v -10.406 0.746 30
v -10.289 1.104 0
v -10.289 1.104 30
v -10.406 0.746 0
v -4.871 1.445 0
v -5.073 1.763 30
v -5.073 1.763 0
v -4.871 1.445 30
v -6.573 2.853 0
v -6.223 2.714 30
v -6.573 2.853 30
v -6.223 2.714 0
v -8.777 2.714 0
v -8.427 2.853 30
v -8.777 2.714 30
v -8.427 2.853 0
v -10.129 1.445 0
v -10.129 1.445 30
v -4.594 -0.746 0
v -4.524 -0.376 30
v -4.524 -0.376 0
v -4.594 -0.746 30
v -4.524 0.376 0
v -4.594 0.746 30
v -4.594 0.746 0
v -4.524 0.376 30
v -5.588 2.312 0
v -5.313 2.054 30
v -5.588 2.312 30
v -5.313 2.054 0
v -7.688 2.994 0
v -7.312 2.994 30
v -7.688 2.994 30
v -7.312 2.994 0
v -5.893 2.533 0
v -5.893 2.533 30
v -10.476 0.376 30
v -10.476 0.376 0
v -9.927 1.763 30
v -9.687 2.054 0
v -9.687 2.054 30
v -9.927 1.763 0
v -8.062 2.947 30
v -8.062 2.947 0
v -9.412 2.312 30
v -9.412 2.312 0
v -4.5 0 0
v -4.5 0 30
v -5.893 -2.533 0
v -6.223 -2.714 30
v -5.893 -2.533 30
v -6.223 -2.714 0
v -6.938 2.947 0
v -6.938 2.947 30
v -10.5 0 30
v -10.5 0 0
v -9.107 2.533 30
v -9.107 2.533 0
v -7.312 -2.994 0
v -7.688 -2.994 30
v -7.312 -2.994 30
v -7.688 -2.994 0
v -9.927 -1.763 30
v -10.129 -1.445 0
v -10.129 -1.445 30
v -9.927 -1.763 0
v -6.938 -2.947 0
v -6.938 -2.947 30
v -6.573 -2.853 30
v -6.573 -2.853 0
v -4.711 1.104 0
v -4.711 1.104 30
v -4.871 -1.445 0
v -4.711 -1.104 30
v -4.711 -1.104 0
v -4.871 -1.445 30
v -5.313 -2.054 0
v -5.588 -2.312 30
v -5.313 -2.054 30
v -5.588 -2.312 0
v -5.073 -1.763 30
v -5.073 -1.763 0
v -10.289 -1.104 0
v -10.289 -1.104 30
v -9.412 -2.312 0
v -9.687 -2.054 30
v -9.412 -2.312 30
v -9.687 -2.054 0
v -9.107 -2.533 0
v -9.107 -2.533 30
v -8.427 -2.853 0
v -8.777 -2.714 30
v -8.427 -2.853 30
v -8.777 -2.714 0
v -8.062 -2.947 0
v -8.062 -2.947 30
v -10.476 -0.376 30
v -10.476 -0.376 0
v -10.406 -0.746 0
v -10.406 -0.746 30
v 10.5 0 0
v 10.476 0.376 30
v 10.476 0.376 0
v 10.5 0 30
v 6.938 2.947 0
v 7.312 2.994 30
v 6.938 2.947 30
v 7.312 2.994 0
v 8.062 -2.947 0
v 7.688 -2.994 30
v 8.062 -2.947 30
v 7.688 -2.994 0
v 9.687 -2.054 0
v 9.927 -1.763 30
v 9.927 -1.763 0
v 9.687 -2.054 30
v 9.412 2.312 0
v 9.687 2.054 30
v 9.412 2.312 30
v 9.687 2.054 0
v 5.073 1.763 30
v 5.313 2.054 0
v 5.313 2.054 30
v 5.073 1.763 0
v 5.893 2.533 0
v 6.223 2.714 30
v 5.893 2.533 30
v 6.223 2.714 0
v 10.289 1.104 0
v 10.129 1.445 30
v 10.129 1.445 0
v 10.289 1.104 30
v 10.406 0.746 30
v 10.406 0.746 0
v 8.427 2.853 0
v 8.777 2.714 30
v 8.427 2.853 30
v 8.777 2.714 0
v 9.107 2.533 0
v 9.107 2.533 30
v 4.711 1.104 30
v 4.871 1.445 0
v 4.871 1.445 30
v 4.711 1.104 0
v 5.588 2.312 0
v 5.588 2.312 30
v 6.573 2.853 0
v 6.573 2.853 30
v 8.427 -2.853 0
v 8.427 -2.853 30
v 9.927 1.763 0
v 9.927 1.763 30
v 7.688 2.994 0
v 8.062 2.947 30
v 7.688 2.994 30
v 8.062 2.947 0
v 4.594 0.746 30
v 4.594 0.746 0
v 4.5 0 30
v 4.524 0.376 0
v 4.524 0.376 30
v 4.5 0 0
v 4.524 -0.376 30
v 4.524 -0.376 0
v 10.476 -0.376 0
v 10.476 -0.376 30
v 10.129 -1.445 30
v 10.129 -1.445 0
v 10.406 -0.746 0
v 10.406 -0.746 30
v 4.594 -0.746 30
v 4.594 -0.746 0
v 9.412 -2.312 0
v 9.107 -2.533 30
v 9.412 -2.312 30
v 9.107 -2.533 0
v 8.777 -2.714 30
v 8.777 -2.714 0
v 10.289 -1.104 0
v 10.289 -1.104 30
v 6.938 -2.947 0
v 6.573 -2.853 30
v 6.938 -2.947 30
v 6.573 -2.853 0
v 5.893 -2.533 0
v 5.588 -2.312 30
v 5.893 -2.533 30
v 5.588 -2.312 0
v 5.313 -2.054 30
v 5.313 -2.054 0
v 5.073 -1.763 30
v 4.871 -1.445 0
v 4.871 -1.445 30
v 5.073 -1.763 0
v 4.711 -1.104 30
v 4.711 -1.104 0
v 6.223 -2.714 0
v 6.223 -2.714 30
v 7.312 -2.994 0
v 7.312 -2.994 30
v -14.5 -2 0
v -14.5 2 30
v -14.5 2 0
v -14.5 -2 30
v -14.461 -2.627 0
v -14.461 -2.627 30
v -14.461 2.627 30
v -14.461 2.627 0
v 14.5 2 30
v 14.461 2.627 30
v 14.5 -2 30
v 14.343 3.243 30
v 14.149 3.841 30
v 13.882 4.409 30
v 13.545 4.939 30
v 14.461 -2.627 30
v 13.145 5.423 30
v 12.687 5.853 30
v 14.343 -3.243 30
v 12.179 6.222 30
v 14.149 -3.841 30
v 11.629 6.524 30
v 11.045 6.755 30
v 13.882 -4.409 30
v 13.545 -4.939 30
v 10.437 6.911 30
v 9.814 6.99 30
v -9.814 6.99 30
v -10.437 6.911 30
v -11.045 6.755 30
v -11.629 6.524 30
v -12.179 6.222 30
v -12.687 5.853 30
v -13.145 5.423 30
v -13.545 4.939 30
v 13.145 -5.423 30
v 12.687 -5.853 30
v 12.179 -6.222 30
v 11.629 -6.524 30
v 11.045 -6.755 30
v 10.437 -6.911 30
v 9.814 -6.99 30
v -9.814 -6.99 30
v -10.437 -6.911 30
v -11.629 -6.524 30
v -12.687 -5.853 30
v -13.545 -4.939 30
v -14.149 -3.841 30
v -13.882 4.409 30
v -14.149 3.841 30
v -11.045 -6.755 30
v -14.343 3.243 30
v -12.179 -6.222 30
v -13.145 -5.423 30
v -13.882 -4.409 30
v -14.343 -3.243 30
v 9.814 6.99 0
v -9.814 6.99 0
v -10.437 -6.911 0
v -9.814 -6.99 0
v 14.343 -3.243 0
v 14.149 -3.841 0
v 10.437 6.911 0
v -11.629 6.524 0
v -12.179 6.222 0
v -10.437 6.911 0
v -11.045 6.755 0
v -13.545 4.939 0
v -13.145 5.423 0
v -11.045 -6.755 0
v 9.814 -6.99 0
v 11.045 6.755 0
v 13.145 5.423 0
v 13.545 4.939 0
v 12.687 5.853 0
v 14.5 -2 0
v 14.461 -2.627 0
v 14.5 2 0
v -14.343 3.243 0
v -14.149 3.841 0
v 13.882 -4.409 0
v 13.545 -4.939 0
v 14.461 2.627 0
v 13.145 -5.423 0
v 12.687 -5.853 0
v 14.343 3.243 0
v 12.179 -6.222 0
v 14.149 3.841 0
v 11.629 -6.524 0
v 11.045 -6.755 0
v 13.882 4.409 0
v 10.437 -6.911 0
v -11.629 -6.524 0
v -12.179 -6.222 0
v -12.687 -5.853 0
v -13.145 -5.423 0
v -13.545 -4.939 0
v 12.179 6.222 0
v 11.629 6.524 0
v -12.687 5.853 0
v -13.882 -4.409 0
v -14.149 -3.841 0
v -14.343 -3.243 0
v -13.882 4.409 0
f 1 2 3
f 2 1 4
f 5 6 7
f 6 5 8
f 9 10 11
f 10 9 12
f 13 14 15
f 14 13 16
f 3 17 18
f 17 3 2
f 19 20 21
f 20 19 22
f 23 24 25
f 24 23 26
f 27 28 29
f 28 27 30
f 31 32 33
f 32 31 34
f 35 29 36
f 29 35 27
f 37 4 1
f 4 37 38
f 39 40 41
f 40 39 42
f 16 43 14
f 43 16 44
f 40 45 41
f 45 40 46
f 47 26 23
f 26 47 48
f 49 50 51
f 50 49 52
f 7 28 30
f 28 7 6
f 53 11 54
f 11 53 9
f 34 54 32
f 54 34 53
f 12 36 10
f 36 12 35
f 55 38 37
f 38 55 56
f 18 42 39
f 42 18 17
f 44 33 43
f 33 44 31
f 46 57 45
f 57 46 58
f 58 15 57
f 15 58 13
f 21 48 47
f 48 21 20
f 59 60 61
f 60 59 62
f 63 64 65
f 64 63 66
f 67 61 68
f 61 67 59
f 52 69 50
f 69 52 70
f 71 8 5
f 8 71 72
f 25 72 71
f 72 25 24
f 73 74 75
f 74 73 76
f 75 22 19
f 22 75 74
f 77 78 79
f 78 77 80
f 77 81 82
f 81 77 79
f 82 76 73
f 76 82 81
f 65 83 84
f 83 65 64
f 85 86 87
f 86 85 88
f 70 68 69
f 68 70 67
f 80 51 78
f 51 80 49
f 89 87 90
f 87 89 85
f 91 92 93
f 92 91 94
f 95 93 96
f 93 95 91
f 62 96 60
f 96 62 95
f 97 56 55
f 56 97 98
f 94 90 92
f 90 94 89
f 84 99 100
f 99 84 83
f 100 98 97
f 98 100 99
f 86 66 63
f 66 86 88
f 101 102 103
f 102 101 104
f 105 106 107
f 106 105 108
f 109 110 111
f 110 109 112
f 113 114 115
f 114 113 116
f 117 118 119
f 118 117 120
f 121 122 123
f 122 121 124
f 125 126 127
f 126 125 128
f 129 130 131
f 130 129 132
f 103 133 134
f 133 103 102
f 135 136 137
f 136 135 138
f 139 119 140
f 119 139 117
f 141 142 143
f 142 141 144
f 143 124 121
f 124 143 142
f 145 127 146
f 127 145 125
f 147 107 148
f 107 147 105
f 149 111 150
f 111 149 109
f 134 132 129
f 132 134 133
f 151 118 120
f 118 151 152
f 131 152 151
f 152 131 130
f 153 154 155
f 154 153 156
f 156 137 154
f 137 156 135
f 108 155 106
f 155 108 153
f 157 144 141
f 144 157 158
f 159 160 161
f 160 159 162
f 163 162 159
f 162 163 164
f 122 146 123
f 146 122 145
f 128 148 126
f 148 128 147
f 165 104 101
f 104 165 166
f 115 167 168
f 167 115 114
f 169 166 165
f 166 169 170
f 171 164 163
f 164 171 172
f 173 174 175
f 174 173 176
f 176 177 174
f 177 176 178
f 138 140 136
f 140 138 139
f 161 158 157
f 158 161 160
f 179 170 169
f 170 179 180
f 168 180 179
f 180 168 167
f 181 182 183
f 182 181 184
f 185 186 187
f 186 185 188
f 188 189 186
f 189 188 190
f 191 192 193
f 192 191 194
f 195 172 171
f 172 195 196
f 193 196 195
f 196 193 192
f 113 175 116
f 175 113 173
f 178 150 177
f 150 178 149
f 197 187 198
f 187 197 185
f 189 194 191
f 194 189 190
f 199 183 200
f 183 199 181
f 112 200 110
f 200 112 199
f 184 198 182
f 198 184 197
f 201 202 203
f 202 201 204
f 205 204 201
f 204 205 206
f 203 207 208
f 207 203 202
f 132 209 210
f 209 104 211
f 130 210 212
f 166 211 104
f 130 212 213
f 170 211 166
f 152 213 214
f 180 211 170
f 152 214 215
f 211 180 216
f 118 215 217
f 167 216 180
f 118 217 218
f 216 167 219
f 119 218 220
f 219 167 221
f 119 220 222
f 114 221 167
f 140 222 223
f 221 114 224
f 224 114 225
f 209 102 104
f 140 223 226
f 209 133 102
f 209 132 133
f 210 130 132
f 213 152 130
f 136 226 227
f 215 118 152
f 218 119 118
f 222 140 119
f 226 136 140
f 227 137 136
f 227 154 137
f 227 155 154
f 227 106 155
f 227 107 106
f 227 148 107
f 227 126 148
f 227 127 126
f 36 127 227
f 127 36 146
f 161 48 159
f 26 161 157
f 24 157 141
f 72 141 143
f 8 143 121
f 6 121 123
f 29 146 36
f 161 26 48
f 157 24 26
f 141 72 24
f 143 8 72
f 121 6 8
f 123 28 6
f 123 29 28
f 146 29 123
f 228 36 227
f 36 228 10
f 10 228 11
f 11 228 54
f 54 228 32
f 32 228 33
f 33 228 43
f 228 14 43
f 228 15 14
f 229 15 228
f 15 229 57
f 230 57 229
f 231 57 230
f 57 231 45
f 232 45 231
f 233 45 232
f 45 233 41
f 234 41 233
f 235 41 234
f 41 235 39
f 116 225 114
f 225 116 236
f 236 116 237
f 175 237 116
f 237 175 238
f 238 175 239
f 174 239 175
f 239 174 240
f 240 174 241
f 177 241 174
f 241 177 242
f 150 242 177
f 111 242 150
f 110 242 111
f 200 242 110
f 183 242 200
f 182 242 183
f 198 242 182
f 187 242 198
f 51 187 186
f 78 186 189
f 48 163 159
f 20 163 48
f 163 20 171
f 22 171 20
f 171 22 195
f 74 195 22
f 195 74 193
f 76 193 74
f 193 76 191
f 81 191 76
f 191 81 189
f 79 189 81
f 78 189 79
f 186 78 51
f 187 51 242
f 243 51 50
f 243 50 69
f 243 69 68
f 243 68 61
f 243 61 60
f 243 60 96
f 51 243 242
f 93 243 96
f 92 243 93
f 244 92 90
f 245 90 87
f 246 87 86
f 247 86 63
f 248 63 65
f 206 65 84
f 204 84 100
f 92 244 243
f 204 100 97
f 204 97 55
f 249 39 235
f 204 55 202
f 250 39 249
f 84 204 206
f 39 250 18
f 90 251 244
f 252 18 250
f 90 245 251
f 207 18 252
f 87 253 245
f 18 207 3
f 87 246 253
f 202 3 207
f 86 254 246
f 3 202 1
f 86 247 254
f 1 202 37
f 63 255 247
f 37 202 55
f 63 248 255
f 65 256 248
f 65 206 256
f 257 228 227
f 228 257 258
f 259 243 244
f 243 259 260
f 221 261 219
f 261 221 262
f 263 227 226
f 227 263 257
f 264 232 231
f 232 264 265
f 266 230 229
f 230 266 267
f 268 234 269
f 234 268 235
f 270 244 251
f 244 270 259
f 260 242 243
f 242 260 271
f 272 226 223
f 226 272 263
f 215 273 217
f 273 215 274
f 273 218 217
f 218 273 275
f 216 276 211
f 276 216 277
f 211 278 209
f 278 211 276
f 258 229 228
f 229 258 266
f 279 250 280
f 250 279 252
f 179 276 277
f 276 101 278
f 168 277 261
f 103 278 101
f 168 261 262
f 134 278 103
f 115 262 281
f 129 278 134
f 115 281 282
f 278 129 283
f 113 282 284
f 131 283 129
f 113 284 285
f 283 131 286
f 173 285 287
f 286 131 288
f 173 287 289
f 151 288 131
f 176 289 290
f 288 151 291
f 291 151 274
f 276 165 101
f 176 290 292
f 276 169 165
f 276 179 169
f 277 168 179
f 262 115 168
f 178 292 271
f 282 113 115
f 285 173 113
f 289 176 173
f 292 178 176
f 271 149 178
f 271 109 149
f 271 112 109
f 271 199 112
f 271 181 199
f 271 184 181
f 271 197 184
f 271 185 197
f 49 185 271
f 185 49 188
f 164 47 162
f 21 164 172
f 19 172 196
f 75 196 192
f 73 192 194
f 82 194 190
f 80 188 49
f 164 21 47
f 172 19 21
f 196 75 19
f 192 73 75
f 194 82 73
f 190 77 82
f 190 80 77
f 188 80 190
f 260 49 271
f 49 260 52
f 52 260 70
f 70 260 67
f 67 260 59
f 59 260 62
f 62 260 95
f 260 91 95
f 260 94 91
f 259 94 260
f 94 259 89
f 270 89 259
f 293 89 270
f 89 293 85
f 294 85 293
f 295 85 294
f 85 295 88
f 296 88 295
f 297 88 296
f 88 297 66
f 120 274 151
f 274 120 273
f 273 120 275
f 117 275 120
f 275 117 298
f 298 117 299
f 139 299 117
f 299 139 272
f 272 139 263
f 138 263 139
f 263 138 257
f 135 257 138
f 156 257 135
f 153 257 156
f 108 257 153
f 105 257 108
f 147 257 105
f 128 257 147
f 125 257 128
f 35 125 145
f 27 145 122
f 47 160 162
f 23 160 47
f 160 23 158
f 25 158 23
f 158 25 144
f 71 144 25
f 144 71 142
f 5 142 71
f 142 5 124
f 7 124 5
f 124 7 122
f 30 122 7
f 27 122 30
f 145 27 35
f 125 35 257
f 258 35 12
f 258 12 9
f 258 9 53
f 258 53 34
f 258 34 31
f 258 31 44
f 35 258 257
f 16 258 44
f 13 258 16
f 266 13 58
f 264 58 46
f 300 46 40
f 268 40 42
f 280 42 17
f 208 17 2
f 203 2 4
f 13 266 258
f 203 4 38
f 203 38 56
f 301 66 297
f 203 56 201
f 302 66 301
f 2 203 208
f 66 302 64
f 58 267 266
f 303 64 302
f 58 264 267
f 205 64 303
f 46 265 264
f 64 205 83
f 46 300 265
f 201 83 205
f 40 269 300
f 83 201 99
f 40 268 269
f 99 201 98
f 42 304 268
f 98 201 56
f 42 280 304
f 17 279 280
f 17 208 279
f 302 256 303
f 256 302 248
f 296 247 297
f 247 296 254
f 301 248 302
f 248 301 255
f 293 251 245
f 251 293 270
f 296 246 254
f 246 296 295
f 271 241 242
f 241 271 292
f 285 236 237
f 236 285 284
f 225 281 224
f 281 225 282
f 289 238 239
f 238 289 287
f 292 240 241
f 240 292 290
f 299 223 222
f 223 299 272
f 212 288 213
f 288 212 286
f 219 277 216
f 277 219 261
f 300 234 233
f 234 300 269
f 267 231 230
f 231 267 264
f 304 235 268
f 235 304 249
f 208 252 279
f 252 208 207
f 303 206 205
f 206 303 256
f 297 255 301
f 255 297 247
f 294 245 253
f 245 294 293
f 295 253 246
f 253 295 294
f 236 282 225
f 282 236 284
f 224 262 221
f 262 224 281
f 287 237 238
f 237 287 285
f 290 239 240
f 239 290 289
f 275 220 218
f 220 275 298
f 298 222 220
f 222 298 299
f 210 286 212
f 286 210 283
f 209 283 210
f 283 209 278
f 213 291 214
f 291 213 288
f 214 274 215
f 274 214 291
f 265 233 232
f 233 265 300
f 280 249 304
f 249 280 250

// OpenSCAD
$fn = 50;


difference() {
	union() {
		hull() {
			translate(v = [-9.5000000000, 2.0000000000, 0]) {
				cylinder(h = 30, r = 5);
			}
			translate(v = [9.5000000000, 2.0000000000, 0]) {
				cylinder(h = 30, r = 5);
			}
			translate(v = [-9.5000000000, -2.0000000000, 0]) {
				cylinder(h = 30, r = 5);
			}
			translate(v = [9.5000000000, -2.0000000000, 0]) {
				cylinder(h = 30, r = 5);
			}
		}
	}
	union() {
		translate(v = [-7.5000000000, 0.0000000000, 0]) {
			translate(v = [0, 0, -100]) {
				cylinder(h = 200, r = 3.0000000000);
			}
		}
		translate(v = [7.5000000000, 0.0000000000, 0]) {
			translate(v = [0, 0, -100]) {
				cylinder(h = 200, r = 3.0000000000);
			}
		}
	}
}
